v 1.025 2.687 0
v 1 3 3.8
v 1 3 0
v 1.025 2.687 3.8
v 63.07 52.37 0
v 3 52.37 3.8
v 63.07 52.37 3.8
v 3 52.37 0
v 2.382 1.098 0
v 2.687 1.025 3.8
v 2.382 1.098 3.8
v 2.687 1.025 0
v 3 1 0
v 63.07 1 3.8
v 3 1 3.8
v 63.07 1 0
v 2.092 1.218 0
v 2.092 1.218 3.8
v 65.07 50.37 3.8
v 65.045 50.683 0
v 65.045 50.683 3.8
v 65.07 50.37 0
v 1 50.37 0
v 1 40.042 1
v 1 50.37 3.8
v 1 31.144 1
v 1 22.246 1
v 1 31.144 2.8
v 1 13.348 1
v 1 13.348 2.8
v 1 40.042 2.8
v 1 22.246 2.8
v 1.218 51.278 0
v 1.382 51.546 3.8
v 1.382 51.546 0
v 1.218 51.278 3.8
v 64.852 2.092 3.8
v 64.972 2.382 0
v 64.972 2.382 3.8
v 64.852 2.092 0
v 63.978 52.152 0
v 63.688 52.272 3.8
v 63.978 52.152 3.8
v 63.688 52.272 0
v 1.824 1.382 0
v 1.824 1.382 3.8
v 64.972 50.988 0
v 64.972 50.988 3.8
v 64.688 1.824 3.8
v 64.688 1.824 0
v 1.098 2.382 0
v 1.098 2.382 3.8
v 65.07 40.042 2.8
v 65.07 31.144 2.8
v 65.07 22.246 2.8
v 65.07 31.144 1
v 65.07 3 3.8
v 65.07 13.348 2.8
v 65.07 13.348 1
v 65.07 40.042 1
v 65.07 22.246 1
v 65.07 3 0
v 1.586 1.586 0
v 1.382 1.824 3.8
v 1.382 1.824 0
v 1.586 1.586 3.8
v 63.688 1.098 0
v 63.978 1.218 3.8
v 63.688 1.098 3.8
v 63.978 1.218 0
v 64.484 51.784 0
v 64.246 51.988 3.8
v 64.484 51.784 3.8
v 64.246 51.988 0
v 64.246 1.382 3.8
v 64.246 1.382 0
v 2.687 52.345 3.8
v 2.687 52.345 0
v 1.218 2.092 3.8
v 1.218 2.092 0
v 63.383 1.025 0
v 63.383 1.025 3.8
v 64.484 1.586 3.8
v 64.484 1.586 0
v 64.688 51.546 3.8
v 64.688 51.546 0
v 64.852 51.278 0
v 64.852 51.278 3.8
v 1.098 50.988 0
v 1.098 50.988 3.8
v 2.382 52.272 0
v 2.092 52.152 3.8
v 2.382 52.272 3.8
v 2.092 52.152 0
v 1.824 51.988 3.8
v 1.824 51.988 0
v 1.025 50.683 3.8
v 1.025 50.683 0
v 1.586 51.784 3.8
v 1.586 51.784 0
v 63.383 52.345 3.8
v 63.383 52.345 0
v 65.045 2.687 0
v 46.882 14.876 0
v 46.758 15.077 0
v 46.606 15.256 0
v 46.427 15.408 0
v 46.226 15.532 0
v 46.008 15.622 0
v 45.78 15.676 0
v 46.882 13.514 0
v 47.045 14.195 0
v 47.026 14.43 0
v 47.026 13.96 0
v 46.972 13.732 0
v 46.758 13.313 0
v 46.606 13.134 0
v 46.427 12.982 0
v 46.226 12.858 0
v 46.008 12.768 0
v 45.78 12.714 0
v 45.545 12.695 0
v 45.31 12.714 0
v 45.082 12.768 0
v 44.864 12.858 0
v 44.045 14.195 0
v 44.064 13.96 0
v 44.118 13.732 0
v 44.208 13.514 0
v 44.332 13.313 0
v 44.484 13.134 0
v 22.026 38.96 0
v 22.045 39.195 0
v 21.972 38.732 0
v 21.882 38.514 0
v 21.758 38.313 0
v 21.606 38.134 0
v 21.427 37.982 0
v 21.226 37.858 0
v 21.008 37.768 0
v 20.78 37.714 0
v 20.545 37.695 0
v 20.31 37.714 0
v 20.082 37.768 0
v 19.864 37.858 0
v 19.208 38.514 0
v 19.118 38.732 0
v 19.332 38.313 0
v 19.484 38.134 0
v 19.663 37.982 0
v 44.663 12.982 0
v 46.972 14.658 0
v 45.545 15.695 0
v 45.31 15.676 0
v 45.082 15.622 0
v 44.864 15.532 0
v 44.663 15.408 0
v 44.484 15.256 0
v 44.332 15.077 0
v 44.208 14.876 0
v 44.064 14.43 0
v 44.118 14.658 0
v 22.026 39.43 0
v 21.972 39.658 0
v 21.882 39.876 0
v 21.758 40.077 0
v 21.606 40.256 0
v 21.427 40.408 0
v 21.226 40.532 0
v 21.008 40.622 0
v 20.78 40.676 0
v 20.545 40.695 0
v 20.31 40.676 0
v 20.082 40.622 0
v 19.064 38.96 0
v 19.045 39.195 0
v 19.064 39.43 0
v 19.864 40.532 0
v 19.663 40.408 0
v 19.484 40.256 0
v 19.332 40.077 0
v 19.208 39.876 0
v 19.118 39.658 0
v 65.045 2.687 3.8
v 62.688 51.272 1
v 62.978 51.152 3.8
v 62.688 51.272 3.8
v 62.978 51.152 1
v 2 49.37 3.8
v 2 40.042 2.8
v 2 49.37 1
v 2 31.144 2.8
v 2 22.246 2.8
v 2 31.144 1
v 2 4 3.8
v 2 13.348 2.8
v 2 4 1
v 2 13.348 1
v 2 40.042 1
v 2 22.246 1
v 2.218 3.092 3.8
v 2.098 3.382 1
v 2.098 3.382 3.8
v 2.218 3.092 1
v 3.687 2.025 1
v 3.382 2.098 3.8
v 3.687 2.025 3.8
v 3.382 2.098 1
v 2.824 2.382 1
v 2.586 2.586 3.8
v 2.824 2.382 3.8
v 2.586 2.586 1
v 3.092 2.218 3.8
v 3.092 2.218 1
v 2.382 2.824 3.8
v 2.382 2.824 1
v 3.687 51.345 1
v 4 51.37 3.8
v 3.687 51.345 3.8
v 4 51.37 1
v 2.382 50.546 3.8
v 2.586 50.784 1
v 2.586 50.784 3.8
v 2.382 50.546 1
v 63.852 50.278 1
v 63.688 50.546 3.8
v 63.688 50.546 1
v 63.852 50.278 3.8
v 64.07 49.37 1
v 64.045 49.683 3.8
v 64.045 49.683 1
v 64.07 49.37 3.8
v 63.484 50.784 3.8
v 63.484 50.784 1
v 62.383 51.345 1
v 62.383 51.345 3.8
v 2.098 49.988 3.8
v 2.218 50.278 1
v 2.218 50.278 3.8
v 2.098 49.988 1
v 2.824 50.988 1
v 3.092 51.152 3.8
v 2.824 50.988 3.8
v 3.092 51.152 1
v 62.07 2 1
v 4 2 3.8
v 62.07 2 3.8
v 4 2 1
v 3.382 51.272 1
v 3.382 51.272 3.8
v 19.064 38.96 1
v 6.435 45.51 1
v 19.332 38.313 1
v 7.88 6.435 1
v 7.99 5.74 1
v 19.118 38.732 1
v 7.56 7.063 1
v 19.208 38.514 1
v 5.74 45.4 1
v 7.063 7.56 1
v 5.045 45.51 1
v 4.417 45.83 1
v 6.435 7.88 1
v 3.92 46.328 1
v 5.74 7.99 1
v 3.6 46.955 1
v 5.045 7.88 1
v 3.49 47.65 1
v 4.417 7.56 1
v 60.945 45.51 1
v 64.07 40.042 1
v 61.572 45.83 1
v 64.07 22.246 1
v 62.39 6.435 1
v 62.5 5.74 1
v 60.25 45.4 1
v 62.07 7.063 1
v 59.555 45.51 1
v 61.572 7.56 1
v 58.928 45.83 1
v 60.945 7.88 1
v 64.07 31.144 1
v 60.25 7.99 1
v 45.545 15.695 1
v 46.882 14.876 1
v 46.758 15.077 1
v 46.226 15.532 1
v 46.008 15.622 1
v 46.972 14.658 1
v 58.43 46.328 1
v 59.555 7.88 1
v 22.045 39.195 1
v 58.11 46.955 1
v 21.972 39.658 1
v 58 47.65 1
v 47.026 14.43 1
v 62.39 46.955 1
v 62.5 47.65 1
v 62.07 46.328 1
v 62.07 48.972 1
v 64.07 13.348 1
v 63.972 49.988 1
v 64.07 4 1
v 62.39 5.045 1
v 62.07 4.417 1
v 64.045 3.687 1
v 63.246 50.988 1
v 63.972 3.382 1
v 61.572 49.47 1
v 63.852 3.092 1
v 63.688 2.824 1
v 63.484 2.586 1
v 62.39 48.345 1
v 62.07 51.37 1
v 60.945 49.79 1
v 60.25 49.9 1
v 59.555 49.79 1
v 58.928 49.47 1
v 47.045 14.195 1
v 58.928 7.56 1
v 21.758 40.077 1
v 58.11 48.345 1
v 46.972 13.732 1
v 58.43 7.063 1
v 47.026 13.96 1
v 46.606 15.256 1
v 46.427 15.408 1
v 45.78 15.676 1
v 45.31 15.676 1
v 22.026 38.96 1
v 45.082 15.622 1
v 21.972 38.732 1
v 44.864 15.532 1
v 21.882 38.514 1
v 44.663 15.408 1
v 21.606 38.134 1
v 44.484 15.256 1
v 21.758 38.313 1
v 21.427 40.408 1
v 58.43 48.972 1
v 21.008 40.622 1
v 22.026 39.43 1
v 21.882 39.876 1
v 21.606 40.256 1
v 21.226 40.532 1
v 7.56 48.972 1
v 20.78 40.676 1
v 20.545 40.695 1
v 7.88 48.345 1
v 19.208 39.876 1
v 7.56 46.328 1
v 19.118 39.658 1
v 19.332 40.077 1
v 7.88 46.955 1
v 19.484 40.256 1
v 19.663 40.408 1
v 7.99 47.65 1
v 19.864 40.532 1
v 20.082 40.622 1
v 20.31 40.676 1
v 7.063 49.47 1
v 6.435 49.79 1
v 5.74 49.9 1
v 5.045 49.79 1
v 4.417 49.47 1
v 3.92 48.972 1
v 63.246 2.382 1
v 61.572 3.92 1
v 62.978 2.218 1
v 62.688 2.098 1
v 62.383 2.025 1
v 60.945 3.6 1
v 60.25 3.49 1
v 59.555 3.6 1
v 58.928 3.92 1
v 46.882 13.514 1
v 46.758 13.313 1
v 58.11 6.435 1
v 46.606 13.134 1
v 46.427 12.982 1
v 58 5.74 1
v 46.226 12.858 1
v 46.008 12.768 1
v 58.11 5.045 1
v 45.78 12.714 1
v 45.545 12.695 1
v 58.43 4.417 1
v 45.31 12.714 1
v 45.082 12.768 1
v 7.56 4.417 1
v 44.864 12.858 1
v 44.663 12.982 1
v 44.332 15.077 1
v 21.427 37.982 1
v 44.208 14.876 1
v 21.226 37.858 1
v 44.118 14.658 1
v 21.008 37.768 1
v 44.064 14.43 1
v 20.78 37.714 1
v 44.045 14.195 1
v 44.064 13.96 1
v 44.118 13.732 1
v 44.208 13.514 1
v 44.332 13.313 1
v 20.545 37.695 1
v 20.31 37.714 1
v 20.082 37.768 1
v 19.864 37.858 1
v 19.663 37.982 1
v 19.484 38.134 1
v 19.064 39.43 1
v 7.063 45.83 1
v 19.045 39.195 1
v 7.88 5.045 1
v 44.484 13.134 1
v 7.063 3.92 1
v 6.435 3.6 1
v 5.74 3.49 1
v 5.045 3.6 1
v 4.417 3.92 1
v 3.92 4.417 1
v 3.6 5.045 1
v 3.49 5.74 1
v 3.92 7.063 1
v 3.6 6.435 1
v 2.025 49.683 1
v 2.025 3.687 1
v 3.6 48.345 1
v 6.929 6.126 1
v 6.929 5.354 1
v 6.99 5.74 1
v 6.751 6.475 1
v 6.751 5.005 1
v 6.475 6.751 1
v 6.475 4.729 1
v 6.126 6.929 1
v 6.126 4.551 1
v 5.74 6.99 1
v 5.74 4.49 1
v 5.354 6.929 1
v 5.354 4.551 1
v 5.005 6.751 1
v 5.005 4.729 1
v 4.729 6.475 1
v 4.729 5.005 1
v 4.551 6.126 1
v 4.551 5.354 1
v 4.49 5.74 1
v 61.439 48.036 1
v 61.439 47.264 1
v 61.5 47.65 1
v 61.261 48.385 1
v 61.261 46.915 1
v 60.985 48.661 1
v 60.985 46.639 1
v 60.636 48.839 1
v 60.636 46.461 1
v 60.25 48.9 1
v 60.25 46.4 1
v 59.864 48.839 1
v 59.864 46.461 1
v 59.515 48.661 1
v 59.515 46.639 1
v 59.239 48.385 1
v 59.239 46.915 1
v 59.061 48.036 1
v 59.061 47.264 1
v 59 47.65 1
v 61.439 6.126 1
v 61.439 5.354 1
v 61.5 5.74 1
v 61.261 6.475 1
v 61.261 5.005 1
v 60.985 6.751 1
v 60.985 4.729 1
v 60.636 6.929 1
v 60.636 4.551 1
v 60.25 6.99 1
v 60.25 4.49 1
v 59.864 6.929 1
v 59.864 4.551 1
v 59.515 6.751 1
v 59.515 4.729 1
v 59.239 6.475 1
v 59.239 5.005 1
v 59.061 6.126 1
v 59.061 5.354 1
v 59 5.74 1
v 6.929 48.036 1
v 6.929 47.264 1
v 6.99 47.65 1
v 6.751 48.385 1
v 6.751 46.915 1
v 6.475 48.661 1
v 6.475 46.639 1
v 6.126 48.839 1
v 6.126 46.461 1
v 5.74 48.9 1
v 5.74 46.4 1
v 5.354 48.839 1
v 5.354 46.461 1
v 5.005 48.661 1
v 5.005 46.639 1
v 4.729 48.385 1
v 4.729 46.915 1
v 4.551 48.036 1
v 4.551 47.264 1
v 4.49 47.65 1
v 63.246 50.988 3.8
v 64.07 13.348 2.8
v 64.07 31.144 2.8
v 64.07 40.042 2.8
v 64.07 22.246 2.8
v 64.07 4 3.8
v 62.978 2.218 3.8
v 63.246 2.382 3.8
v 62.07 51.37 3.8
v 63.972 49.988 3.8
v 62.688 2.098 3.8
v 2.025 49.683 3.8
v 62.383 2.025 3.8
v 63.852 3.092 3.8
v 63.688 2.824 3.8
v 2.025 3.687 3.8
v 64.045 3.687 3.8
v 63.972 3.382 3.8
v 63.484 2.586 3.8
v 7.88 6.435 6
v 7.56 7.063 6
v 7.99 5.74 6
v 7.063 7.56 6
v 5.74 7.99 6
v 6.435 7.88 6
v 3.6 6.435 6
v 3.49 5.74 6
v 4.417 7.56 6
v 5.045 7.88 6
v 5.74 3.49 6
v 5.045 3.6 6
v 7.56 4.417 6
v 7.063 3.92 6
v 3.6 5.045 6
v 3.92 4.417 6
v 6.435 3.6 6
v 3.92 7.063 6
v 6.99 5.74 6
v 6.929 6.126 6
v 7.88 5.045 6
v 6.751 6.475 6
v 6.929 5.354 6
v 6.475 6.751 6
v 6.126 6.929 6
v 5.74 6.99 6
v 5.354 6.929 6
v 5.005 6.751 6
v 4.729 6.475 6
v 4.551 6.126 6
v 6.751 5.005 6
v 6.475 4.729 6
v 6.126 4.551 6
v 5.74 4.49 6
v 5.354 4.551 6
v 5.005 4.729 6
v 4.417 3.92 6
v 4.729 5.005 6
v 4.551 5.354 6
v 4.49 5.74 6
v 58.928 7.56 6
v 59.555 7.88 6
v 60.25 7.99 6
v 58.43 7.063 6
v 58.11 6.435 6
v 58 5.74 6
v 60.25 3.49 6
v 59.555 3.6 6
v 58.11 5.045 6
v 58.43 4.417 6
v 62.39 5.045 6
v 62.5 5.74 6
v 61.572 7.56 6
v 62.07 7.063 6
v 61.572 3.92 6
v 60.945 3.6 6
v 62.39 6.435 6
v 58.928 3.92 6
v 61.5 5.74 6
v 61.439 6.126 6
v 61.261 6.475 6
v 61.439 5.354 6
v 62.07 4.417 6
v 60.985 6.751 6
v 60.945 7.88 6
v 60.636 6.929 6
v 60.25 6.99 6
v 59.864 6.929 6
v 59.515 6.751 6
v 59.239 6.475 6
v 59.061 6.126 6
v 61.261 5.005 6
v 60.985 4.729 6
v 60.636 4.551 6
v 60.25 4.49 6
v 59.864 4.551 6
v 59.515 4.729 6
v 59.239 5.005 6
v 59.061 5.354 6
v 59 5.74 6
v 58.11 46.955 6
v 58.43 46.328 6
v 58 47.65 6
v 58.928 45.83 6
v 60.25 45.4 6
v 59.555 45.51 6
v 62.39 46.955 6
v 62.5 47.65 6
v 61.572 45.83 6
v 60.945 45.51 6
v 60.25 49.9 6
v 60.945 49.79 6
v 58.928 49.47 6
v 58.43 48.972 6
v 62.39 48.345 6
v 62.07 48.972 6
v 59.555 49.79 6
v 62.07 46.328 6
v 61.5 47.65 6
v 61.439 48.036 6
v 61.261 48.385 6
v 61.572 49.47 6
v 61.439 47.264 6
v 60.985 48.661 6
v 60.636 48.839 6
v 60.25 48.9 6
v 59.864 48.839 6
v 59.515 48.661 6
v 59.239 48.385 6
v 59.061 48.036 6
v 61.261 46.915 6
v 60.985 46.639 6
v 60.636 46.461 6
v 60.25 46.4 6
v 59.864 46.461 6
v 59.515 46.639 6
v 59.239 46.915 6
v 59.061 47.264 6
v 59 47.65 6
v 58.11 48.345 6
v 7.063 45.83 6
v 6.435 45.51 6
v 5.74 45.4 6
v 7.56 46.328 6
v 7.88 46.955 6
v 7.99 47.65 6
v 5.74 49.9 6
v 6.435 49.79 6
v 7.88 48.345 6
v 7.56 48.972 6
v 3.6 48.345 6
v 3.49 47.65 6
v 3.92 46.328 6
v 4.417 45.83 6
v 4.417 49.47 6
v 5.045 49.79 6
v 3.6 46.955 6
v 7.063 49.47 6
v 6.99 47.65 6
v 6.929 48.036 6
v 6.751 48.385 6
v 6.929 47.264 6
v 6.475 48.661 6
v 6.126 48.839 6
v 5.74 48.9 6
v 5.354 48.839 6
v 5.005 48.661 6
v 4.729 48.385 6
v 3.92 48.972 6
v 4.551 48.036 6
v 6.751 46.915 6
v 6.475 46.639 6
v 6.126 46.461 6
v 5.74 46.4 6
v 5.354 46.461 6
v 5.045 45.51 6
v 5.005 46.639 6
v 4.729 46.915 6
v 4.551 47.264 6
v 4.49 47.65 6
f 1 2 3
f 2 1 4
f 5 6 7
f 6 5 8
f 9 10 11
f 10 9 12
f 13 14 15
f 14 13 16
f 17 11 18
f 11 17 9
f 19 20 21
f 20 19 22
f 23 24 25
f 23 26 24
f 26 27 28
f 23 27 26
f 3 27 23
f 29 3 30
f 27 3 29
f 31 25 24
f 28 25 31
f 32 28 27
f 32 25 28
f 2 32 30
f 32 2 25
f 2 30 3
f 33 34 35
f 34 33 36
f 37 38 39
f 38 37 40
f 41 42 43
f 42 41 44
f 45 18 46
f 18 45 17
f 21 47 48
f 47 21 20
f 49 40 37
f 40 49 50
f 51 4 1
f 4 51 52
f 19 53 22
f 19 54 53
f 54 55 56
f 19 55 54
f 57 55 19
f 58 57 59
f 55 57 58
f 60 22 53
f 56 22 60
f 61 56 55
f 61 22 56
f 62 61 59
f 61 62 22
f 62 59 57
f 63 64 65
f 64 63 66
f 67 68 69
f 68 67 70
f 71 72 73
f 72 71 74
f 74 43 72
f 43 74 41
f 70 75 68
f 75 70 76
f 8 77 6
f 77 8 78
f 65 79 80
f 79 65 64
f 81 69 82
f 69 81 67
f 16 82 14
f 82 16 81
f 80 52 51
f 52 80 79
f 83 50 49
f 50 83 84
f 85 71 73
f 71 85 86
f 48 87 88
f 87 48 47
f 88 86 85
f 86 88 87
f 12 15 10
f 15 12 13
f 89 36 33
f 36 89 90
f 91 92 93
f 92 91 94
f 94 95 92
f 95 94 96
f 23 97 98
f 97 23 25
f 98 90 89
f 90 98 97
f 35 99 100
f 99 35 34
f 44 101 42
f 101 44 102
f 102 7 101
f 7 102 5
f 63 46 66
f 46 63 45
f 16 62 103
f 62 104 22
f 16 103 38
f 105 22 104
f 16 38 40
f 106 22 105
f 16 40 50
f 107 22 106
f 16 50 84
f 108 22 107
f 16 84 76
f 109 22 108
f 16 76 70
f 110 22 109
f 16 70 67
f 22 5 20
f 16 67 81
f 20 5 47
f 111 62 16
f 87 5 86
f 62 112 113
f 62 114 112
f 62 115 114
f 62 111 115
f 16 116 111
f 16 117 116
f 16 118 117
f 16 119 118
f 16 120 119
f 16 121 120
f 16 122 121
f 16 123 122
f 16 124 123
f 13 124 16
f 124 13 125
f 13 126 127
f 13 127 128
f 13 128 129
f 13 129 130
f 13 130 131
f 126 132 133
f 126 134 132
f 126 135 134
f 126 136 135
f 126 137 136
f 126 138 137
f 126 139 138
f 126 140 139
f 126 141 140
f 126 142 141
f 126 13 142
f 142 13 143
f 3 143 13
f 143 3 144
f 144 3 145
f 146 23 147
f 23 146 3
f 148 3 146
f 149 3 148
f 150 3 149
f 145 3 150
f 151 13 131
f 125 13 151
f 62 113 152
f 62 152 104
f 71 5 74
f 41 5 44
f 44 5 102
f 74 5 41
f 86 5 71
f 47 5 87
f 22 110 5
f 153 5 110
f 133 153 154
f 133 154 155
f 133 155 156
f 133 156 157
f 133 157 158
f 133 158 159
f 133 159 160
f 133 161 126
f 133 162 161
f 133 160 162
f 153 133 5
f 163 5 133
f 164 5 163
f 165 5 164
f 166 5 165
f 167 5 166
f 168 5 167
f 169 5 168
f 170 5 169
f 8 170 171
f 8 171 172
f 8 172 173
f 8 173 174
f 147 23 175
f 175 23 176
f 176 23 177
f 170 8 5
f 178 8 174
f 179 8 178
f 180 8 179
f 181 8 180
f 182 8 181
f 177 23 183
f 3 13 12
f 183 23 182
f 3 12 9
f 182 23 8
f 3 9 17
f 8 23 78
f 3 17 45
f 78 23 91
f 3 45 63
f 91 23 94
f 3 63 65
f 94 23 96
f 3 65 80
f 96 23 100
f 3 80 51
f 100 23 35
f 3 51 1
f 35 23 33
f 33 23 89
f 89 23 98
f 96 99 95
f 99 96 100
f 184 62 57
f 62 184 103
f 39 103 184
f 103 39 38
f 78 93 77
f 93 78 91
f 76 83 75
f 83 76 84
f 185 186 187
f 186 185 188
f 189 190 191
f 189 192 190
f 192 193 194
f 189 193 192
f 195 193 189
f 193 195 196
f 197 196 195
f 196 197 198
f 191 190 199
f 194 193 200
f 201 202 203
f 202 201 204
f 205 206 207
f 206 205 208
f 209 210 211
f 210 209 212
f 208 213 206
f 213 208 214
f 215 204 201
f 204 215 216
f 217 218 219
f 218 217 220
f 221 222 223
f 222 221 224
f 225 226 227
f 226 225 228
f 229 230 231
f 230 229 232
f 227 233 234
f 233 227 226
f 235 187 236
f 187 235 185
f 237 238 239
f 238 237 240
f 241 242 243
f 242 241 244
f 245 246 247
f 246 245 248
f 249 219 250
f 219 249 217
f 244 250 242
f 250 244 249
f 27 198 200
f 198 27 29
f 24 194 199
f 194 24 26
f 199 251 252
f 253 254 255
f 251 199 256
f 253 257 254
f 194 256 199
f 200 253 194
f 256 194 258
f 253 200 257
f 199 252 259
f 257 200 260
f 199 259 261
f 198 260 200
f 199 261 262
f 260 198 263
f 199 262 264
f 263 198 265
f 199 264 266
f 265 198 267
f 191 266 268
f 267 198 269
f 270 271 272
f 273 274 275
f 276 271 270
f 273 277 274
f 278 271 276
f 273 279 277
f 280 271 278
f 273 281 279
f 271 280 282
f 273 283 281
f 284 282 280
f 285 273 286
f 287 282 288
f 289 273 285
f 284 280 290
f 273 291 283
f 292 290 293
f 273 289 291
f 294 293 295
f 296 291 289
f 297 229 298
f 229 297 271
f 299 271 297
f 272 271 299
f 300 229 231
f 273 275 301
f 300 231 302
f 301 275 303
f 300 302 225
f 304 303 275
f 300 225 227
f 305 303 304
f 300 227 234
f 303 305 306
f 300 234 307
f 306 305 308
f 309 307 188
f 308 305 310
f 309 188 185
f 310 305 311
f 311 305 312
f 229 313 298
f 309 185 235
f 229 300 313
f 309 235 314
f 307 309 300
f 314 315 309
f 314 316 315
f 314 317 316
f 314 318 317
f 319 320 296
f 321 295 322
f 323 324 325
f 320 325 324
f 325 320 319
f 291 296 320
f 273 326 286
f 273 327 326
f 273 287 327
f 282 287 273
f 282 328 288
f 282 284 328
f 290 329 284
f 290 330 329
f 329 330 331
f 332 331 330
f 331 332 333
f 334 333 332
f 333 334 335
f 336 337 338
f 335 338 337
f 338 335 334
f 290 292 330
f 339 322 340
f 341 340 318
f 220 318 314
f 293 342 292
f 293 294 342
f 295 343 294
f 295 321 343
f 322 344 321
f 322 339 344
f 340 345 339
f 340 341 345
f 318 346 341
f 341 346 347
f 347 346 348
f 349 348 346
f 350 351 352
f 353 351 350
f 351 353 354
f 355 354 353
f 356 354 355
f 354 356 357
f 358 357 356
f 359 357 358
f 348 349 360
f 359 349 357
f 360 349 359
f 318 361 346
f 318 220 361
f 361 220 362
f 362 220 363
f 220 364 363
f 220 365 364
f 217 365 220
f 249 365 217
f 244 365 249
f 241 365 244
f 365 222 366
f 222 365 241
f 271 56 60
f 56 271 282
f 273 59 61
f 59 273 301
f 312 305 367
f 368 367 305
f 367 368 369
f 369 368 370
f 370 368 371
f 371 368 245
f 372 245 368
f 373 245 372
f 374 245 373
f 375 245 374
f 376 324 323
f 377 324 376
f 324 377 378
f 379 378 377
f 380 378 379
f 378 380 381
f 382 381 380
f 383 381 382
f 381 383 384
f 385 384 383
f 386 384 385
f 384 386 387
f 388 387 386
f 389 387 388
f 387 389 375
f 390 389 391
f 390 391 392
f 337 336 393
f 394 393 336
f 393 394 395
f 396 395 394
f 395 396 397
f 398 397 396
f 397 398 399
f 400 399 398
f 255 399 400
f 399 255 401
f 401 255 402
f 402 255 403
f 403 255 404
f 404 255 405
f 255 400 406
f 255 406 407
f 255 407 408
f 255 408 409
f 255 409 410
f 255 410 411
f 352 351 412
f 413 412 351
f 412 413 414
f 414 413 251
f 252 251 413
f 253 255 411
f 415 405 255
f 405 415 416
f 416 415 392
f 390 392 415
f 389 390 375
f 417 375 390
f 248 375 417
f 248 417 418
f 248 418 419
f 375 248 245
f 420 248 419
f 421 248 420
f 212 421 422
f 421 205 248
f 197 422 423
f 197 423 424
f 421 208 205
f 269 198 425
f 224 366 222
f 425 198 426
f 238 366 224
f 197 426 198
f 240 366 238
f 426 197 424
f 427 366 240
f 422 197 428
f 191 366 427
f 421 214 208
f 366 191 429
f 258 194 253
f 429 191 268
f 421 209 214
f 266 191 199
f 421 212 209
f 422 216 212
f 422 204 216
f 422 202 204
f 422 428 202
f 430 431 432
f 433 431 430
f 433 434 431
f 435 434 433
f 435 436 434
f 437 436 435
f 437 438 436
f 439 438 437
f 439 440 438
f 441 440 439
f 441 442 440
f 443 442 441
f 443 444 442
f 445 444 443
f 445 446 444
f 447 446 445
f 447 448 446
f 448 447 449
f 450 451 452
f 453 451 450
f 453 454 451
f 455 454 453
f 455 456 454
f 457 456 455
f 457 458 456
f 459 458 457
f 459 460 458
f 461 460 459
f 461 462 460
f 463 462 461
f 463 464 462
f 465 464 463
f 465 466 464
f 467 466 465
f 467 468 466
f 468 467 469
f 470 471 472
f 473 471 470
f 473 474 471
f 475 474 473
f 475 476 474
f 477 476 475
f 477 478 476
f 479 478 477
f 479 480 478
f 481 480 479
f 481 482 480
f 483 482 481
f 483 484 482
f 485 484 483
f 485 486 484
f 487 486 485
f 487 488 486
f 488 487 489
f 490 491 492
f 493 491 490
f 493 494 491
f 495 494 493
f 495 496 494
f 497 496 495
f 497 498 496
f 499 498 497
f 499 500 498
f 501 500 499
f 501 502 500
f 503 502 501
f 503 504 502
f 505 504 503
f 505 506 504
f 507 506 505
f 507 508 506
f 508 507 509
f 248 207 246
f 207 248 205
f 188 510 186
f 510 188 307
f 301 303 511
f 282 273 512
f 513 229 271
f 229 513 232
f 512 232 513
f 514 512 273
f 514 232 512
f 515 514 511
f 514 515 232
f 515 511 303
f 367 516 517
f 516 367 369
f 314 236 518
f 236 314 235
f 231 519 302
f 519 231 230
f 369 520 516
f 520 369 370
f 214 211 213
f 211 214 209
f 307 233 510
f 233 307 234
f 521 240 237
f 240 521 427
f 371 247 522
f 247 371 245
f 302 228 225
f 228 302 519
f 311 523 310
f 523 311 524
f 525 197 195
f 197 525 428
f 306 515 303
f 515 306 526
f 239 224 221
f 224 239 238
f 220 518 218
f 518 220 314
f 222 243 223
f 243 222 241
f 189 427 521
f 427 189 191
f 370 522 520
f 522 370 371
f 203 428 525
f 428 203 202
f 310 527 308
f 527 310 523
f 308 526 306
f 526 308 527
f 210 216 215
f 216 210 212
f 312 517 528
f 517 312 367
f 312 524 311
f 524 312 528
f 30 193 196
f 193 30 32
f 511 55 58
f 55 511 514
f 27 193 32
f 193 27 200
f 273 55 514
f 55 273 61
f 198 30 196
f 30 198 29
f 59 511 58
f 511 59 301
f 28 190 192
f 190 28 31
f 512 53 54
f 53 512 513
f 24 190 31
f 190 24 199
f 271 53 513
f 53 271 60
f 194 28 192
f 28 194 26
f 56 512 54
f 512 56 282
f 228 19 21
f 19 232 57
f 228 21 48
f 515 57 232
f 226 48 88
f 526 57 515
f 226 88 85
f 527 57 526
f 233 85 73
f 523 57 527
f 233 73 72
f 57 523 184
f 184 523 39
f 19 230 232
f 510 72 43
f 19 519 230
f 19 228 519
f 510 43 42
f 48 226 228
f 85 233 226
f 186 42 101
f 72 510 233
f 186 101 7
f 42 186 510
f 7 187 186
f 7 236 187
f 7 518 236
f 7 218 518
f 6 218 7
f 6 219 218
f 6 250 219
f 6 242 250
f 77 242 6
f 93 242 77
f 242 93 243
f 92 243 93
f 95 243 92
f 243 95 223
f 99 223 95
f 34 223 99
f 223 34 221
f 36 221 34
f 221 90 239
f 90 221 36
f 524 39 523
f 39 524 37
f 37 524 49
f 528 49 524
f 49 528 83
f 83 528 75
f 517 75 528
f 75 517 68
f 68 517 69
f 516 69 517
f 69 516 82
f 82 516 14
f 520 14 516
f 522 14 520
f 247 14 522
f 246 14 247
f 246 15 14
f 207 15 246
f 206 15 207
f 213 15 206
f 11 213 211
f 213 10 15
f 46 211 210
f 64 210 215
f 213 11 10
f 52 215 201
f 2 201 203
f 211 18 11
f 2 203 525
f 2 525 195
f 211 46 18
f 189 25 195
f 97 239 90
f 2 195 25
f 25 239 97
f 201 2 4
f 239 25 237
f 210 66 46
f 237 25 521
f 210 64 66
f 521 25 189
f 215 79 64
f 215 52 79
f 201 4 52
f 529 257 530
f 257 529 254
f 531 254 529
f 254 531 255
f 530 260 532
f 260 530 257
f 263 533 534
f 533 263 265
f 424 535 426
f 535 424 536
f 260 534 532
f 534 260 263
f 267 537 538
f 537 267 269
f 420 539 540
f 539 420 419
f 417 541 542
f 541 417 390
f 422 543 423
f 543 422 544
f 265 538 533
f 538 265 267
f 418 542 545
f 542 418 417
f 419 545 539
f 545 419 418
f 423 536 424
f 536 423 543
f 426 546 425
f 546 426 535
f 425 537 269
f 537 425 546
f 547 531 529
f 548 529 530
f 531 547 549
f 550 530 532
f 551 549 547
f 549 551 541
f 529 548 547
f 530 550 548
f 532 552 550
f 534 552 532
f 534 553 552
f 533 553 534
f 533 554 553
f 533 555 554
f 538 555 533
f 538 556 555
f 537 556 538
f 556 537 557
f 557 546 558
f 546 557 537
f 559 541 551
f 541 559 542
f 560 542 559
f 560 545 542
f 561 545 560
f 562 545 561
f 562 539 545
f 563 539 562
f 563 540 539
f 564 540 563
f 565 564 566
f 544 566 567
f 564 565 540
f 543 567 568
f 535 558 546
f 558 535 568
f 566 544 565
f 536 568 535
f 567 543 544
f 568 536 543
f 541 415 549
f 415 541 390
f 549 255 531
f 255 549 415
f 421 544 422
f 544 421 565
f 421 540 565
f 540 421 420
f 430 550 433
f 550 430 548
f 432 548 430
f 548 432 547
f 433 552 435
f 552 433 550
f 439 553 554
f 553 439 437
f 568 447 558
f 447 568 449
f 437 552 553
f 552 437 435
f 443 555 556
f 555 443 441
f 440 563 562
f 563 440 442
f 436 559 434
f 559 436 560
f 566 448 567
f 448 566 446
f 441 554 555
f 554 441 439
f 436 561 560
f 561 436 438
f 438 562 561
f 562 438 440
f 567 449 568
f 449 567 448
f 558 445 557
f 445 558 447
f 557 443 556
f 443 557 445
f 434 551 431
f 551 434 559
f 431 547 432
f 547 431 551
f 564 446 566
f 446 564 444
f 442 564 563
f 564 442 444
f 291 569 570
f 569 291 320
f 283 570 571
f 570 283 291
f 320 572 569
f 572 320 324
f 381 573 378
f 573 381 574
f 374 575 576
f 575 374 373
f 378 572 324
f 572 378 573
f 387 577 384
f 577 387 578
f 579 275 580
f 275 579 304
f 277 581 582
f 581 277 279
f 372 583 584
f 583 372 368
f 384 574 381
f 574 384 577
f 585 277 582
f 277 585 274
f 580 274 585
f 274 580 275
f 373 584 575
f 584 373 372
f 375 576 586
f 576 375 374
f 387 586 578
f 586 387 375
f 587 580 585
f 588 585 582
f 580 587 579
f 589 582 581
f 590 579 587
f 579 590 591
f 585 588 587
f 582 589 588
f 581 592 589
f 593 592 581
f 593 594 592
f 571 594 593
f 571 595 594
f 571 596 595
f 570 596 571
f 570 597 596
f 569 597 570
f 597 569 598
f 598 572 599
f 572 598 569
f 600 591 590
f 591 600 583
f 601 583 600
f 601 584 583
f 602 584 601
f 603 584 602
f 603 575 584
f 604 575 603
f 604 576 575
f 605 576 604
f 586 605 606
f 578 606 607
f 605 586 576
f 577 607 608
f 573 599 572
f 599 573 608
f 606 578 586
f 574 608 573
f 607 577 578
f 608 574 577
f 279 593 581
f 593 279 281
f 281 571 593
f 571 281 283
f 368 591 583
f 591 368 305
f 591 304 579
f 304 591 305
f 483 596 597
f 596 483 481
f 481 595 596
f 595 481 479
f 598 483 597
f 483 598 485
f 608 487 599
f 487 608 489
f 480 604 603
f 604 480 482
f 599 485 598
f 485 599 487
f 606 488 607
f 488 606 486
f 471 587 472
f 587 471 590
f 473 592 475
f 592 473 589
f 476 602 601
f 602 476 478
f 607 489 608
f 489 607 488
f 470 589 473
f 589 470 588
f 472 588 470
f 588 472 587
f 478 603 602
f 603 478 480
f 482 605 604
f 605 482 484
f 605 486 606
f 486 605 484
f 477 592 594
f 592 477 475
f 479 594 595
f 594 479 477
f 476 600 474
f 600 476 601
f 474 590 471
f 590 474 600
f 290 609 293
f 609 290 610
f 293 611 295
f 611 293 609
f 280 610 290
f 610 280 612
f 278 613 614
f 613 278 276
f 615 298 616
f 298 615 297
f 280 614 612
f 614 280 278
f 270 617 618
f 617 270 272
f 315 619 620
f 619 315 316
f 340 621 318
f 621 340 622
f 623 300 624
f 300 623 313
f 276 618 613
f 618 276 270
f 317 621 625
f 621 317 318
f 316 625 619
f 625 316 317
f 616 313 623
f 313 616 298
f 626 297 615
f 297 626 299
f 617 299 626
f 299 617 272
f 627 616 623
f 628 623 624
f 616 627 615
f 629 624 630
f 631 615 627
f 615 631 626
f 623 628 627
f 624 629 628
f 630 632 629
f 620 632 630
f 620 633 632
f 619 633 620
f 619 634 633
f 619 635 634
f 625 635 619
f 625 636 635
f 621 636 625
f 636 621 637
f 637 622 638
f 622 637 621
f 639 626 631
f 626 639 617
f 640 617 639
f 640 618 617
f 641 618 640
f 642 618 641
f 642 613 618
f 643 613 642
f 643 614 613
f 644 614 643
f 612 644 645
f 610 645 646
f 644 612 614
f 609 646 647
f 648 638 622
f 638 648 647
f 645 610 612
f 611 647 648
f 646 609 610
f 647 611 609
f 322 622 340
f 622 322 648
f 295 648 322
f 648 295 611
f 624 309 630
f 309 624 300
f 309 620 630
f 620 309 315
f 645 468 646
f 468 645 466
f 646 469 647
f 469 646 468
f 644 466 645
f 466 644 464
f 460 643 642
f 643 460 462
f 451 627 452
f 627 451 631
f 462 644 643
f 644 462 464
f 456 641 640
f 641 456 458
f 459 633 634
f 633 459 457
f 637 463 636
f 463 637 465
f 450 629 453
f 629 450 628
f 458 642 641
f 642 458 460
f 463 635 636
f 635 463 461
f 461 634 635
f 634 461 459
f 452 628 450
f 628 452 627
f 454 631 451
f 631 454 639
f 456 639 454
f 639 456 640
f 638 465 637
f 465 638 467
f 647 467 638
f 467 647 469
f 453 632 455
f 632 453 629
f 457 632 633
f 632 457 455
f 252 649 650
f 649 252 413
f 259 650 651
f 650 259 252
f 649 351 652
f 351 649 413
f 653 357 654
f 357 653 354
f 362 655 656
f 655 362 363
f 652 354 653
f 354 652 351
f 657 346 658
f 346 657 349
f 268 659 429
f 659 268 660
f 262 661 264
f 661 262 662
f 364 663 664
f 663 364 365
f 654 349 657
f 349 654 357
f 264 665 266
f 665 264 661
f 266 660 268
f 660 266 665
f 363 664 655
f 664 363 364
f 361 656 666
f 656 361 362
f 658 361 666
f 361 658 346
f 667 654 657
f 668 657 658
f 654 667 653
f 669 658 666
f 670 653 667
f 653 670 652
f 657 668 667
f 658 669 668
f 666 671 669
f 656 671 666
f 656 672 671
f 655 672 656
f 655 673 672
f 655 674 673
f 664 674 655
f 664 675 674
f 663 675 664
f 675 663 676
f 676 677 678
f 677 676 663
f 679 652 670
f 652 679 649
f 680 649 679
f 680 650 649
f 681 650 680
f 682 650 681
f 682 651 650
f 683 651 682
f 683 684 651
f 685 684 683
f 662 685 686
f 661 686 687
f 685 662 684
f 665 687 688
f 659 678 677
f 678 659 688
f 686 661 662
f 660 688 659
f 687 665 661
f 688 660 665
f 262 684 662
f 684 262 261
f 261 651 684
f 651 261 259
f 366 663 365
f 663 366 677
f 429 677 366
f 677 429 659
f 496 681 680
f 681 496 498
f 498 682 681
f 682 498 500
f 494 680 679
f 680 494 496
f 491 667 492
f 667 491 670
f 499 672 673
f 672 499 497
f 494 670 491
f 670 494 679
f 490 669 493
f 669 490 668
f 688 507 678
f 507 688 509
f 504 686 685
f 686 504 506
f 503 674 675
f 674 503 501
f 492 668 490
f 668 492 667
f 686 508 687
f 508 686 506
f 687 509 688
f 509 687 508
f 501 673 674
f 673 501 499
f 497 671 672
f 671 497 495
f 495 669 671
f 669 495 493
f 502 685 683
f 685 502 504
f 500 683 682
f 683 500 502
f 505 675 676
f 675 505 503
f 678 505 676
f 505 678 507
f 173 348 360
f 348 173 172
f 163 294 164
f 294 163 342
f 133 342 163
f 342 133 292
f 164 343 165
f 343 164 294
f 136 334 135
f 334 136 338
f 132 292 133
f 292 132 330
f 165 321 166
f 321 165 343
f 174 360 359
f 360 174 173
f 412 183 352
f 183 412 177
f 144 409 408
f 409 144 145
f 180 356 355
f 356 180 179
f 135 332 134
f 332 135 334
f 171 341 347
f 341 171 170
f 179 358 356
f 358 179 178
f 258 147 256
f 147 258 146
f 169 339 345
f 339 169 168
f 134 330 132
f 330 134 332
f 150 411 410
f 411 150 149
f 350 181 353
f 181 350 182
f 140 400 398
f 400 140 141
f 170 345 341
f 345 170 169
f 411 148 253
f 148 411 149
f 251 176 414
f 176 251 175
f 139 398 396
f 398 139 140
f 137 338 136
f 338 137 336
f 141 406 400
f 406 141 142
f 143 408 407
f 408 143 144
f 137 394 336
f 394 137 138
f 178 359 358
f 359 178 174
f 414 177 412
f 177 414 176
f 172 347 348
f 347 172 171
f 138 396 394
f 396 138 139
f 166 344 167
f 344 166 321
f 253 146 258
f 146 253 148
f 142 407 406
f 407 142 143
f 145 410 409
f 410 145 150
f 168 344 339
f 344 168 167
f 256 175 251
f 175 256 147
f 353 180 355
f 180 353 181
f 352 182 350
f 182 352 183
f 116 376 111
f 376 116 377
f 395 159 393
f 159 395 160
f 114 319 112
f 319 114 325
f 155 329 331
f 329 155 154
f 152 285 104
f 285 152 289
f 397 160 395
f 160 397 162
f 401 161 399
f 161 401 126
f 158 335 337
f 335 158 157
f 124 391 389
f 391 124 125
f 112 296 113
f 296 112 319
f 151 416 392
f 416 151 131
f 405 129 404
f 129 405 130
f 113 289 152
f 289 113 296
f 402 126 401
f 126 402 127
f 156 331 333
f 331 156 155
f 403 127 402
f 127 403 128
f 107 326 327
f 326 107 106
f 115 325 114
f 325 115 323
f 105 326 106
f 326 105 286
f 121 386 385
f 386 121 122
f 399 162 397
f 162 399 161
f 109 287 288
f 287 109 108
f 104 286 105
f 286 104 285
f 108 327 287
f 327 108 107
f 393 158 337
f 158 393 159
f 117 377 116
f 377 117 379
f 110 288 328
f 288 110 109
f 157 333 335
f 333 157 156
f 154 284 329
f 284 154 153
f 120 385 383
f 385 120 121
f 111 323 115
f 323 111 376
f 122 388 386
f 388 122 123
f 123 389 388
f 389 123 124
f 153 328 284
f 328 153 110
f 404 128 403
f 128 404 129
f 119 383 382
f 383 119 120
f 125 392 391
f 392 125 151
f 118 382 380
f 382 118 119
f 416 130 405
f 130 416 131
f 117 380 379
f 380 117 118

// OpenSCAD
// file: ProjectBox/util.scad
// Copyright (c) 2024 Chris Lee and contibuters.
// Licensed under the MIT license. See LICENSE file in the project root for details.

include <MCAD/units.scad>

ones = [1, 1, 1];

module RX(angle) {
  rotate(angle, X) children();
}
module RY(angle) {
  rotate(angle, Y) children();
}
module RZ(angle) {
  rotate(angle, Z) children();
}
module TX(dist) {
  translate(X*dist) children();
}
module TX(dist) {
  translate(X*dist) children();
}
module TY(dist) {
  translate(Y*dist) children();
}
module TZ(dist) {
  translate(Z*dist) children();
}

// x-extra and y-extra adjust the x/y offset at the far-x and far-y corners.
module at_corners(dims, corner_offset, to_draw=undef, x_extra=0.0, y_extra=0.0) {
  o = corner_offset;
  if (!to_draw || to_draw[0]) translate([o, o, 0]) children();
  if (!to_draw || to_draw[1]) translate([dims[0]-o+x_extra, o, 0]) rotate(90, Z) children();
  if (!to_draw || to_draw[2]) translate([dims[0]-o+x_extra, dims[1]-o+y_extra, 0])
				rotate(180, Z) children();
  if (!to_draw || to_draw[3]) translate([o, dims[1]-o+y_extra, 0]) rotate(270, Z) children();
}
// file: ProjectBox/screw_tab.scad
// Copyright (c) 2024 Chris Lee and contibuters.
// Licensed under the MIT license. See LICENSE file in the project root for details.

include <MCAD/units.scad>

// Screw tab is drawn in the y-direction (attached on -Y side).
module screw_tab(tab_width=10, thickness=2, screw_radius=2) {
  $fn=40;
  dz = thickness;
  sd = tab_width;
  sr = tab_width / 2;
  translate([-sr, -epsilon, 0]) difference() {
    union() {
      cube([sd, sr, dz]);
      translate([sr, sr, 0]) cylinder(dz, sr, sr);
    }
    translate([sr, sr, -epsilon]) cylinder(dz+1, screw_radius, screw_radius);
  }
}
// file: ProjectBox/rounded_box.scad
// Copyright (c) 2024 Chris Lee and contibuters.
// Licensed under the MIT license. See LICENSE file in the project root for details.

module rounded_box(dims, r) {
  x = dims[0];
  y = dims[1];
  z = dims[2];
  module cyl() {
    cylinder(z, r, r, $fn=40);
  }
  if (r == 0) {
    cube(r);
  } else {
    hull() {
      translate([r, r, 0]) cyl();
      translate([x-r, r, 0]) cyl();
      translate([x-r, y-r, 0]) cyl();
      translate([r, y-r, 0]) cyl();
    }
  }
}
// file: board.scad
// Copyright (c) 2026 Chris Lee and contributors.
// Licensed under the MIT license. See LICENSE file in the project root for details.

include <ProjectBox/project_box.scad>

board_thickness = 1.6;
pad_space = 2.54;
board_dims = [23.5*pad_space, 18.5*pad_space, board_thickness];  // 59.69 x 46.99

module Plant1337_to_oled_frame() {
  u = pad_space;
  translate([u*23-1.2, 6.1, 13]) rotate([0, 0, 90]) children();
}

module oled() {
  s = inch * 0.1;
  pin_len = 4;
  color("silver") {
    for (i = [0: 3]) {
      translate([s*i+pad_space, pad_space/2, -pin_len]) cube([0.25, 0.25, pin_len]);
    }
  }
  color("gray") cube([12, 38, 1]);
  translate([0, 5.5, 1]) color("black") cube([12, 28, 1]);
}

module Plant1337_board() {
  u = pad_space;

  // Board imported from KiCad (VRML) -> meshlab
  translate([board_dims[0]/2, board_dims[1]/2, board_dims[2]/2]) color("grey")
    import(file="../../KiCAD/Plant1337.stl", convexity=3);

  Plant1337_to_oled_frame() oled();
}
// file: ProjectBox/shtc3_window.scad
// Copyright (c) 2024 Chris Lee and contibuters.
// Licensed under the MIT license. See LICENSE file in the project root for details.

module shtc3_window(offset, space_above_board, wall, negative, z_gap = 0.0) {
  sz = [3, 3, 1];
  translate(offset) {
    if (negative) {
      translate([0, 0, z_gap-1]) {
	cube([sz[0], sz[1], space_above_board+wall+2-z_gap]);
      }
    } else {
      translate([-wall, -wall, z_gap+epsilon]) {
	cube([sz[0] + 2*wall, sz[1] + 2*wall, space_above_board-z_gap]);
      }
    }
  }
}
// file: ProjectBox/mounts.scad
// Copyright (c) 2024 Chris Lee and contibuters.
// Licensed under the MIT license. See LICENSE file in the project root for details.

module screw_mount(height, wall, screw_radius) {
  $fn = 20;
  difference() {
    cylinder(height, screw_radius+wall, screw_radius+wall);
    cylinder(height+epsilon, screw_radius, screw_radius);
  }
}
// file: ProjectBox/project_box.scad
// Copyright (c) 2024 Chris Lee and contibuters.
// Licensed under the MIT license. See LICENSE file in the project root for details.

include <MCAD/units.scad>
include <rounded_box.scad>
include <screw_tab.scad>
use <util.scad>

bump_d = 0.8;

module in_board_frame(outer_dims, board_dims, space_below_board) {
  translate([(outer_dims[0] - board_dims[0])/2,
	     (outer_dims[1] - board_dims[1])/2,
	     space_below_board])
    children();
}

default_tab_len = 10;
function tab_length(dim, num_tabs=2) = min(default_tab_len, dim/(2*(num_tabs+1)));
function tab_offset(i, dim, num_tabs=2) = (dim*(i+1)/(num_tabs+1))-0.5*tab_length(dim, num_tabs);

module project_box(outer_dims,
		   wall_thickness=1,
		   gap=0.1,
		   // If true put snaps for top/bottom on sides rather than front/back.
		   snaps_on_sides=false,
		   corner_radius=0.0,
		   top=true,
		   top_cutouts=undef,
		   ym_cutouts=undef,
		   screw_tab_d=0) {
  wall = wall_thickness;
  num_snaps = 2;

  // Length of side of box snap-tabs will be added.
  tabdim = snaps_on_sides ? outer_dims[1] : outer_dims[0];
  // Length of snap-tab holes (tabs shrinks slightly to fit).
  tablen = tab_length(tabdim, num_snaps);
  // Difference between tab length and tab hole length;
  tab_gap = 1;

  // Space between bottom of box and top of box.
  fit_gap = 0.02;

  // The bottom of the box fits inside the shell of the top.
  dims = top ? outer_dims : outer_dims - (2*wall+fit_gap) * [1, 1, 1];

  // Tabs for clicking base into start at wall-height, are 2*wall-height high.
  // Allow 2*wall_height above bump for hight of bottom part of box.
  tab_depth = min(bump_d, dims[2] - 3*wall);
  bottom_height = wall+tab_depth+2*wall;

  module bump() {
    dh = bump_d - fit_gap;
    rotate(90, Y) cylinder(tablen-tab_gap, dh, dh, $fn=20);
  }

  module hump_positives(humps, space_above_board, corner_radius, wall) {
    for (hump = humps) {
      offset = hump[0];
      outer_dims = hump[1];
      z_start = gap * 2 + wall + space_below_board + board_thickness + space_above_board + epsilon;
      translate([offset[0], offset[1], z_start]) rounded_box(outer_dims, corner_radius);
    }
  }
  module hump_negatives(humps, space_above_board, corner_radius, wall) {
    for (hump = humps) {
      offset = hump[0];
      outer_dims = hump[1];
      z_start = gap * 2 + wall + space_below_board + board_thickness + space_above_board - epsilon - epsilon;
      translate([offset[0]+wall, offset[1]+wall, z_start])
	rounded_box(outer_dims-[wall*2, wall*2, wall], corner_radius);
    }
  }
  module cutouts(cutout_list, remove_len) {
    for (cutout = cutout_list) {
      offset = cutout[0];
      dims = cutout[1];
      translate([offset[0], offset[1], 0]) cube([dims[0], dims[1], remove_len]);
    }
  }

  wedge_dx = 2*wall;
  wedge_dy = min(outer_dims[1]-2*wall-corner_radius, 10);
  wedge_dz = wedge_dx;
  module wedge() {
    // Bump to stop the bottom of box to go too up into the top.
    translate([0, 0, bottom_height+fit_gap]) {
      // Start with cube, switch to wedge for printing.
      translate(Y*wedge_dy) rotate(90, X)
	linear_extrude(wedge_dy) polygon([[0, 0], [0, wedge_dz], [wedge_dx, 0]]);
    }
  }

  // The bottom of the box fits inside the shell of the top.
  translate(top ? [0,0,0] : wall*[1, 1, 0]) union() {
    difference() {
      // shell
      difference() {
	union() {
	  rounded_box(dims, corner_radius);
	  if (top)
	    hump_positives(bumps, space_above_board, corner_radius, wall);
	}
	iz = top ? (dims[2] - 2*wall) : dims[2];  // inner-z
	translate(ones*wall) rounded_box([dims[0] - wall*2, dims[1]-wall*2, iz], corner_radius);
	if (top) {
	  hump_negatives(bumps, space_above_board, corner_radius, wall);
	  // cutouts from the top surface
	  if (top_cutouts)
	    cutouts(top_cutouts, remove_len=100);
	  // cutouts from the y=0 surface
	  if (ym_cutouts)
	    translate([0, 1+wall, 0]) rotate([90, 0, 0]) cutouts(ym_cutouts, remove_len=(wall+2));
	}
      }

      if (!top) {
	// Box bottom

	// Cut off top.
	translate([-1, -1, bottom_height]) { cube(dims + 2 * ones); }
	// Make a slot for top to click into
	bottom_offset = -wall;  // offset to account for bottom fitting inside top.
	if (snaps_on_sides) {
	  for (isnap = [0:num_snaps-1]) {
	    y = tab_offset(isnap, tabdim, num_snaps) + bottom_offset;
	    translate([-1, y, wall]) cube([dims[0]+2, tablen, wall+tab_depth]);
	  }
	} else {
	  for (isnap = [0:num_snaps-1]) {
	    x = tab_offset(isnap, tabdim, num_snaps) + bottom_offset;
	    translate([x, -1, wall]) cube([tablen, dims[1]+2, wall+tab_depth]);
	  }
	}
      }	else {
	// Box top

	// Cut out for bottom
	translate(wall*[1, 1, -1]) {
	  rounded_box([dims[0]-2*wall, dims[1]-2*wall, wall*3], corner_radius);
	}
      }
    }

    // Board supports
    if (top) {
      // Snaps: Make bumps to click into slot in bottom.
      if (snaps_on_sides) {
	for (isnap = [0:num_snaps-1]) {
	  y = tab_offset(isnap, tabdim, num_snaps) + tab_gap/2;
	  translate([wall-epsilon, y, wall+gap/2]) rotate(90, Z) bump();
	  translate([dims[0]+epsilon-wall, y, wall+gap/2]) rotate(90, Z) bump();
	}
	translate([wall-epsilon, (outer_dims[1]-wedge_dy)/2, 0]) wedge();
	translate([outer_dims[0]-wall+epsilon, (outer_dims[1]+wedge_dy)/2, 0])
	  rotate(180, Z) wedge();
      } else {
	for (isnap = [0:num_snaps-1]) {
	  x = tab_offset(isnap, tabdim, num_snaps) + tab_gap/2;
	  translate([x, wall-epsilon, wall+gap/2]) bump();
	  translate([x, dims[1]+epsilon-wall, wall+gap/2]) bump();
	}
	translate([(outer_dims[0]+wedge_dy)/2, wall-epsilon, 0]) rotate(90, Z) wedge();
	translate([(outer_dims[0]-wedge_dy)/2, outer_dims[1]-wall+epsilon, 0])
	  rotate(270, Z) wedge();
      }
    }
  }

  if (top && screw_tab_d > 0) {
    translate([outer_dims[0]/2, outer_dims[1], 0])
      screw_tab(tab_width=screw_tab_d, thickness=2*wall, screw_radius=2);
  }
}

module holder_tab(wall_thickness, thickness=2, out_r=4, in_r=2) {
  translate(Z*wall_thickness) linear_extrude(thickness) {
    $fn = 20;
    y = epsilon;
    difference() {
      hull() {
	translate([0, epsilon-out_r]) circle(out_r);
	polygon([[-out_r, epsilon], [out_r, epsilon],
		 [out_r, 2*epsilon], [out_r, 2*epsilon]]);
      }
      translate([0, -out_r]) circle(in_r);
    }
  }
}
// file: gui.scad
// Copyright (c) 2026 Chris Lee and contributors.
// Licensed under the MIT license. See LICENSE file in the project root for details.

// :GUI:
show_vitamins = true;
// :GUI:
show_box = true;
// :GUI:
top = true;
// file: box.scad
// Copyright (c) 2026 Chris Lee and contributors.
// Licensed under the MIT license. See LICENSE file in the project root for details.

include <ProjectBox/project_box.scad>
include <ProjectBox/mounts.scad>
include <ProjectBox/shtc3_window.scad>
include <board.scad>

ones = [1, 1, 1];

wall_thickness = 1;
gap = 0.2;
corner_radius = 2;
mount_offset = pad_space;

space_above_board = 2.5;
space_below_board = 5;
inner_dims = (board_dims
	      + Z*(space_above_board+space_below_board)
	      + 2*gap*ones);
outer_dims = (inner_dims
	      + 2*ones*wall_thickness
	      + [2, 2, 0] * corner_radius);

// OLED bump offset and dims
oled_o = [21, 0];
oled_d = [outer_dims[0] - oled_o[0], 22, 12.5];

// bumps is a list of [offset-xy, outer_dims]
humps = [[oled_o, oled_d]];

// cutout for moisture & pump
conns_o = [32, 22];
conns_d = [30.5, 21];
// cutout for water-level sensor
wlconn_o = [conns_o[0], conns_o[1]+conns_d[1]-epsilon];
wlconn_d = [8.5, 7];
// cutout for oled screen
olsc_o = [oled_o[0] + 7.5, oled_o[1] + 8.5];
olsc_d = [28, 10];
// cutout for reset button
rst_o = [oled_o[0] - 6, 10.5];
rst_d = [4, 3];
// top_cutouts is a list of [offset-xy,  dims-xu]
top_cutouts = [[conns_o, conns_d], [wlconn_o, wlconn_d], [olsc_o, olsc_d], [rst_o, rst_d]];

usb_cutout = [[12, wall_thickness+space_below_board+board_thickness-1.5], [11, 4]];
ym_cutouts = [usb_cutout];

module in_Plant1337_board_frame(board_height=false) {
  zoffset = wall_thickness + (board_height ? space_below_board + 2*gap + board_thickness : 0);
  in_board_frame(outer_dims, board_dims, zoffset) children();
}

module Plant1337_box(top) {
  wall = wall_thickness;
  shtc3_loc = [board_dims[0] - 10.5, board_dims[1]-4.5, 0];

  difference() {
    union() {
      color("white") project_box(outer_dims,
		  wall_thickness=wall_thickness,
		  gap=gap,
		  snaps_on_sides=true,
		  corner_radius=corner_radius,
		  top=top,
		  humps=humps,
		  top_cutouts=top_cutouts,
		  ym_cutouts=ym_cutouts);
      if (top) {
	color("white") in_Plant1337_board_frame(board_height=true)
	  shtc3_window(shtc3_loc, space_above_board+wall, wall, false, z_gap=-1);
	translate([27, 35, outer_dims[2]-epsilon])
	  color("black") linear_extrude(0.5) {
	  translate([0, 0, 0]) text("1", size=4);
	  translate([14, 10, 0]) text("2", size=4);
	  translate([21, 10, 0]) text("3", size=4);
	  translate([29, 10, 0]) text("4", size=4);
	}
      } else {
	// Stuff to add on bottom.
	color("white") in_Plant1337_board_frame() {
	  at_corners(board_dims+1.5*X, mount_offset, x_extra=-1.6, y_extra=0.0)
	    screw_mount(space_below_board, wall, 2.5/2);
	}
      }	
    }
    // Stuff to remove.
    if (top) {
      in_Plant1337_board_frame(board_height=true)
	shtc3_window(shtc3_loc, space_above_board, wall, true, z_gap=-1);
    } else {
      // Screw holes to mount on reservoir lid.
      w = 2;
      len = 25;
      $fn = 40;
      translate([outer_dims[0]/2, outer_dims[1]/2, -0.1]) {
	translate([-len/2, len/2, -1]) cylinder(2*w+2, 1.5, 1.5);
	translate([len/2, -len/2, -1]) cylinder(2*w+2, 1.5, 1.5);
      }
    }
  }
}
// main file
// Copyright (c) 2026 Chris Lee and contributors.
// Licensed under the MIT license. See LICENSE file in the project root for details.

include <box.scad>
include <gui.scad>

top = false;

Plant1337_box(top);
